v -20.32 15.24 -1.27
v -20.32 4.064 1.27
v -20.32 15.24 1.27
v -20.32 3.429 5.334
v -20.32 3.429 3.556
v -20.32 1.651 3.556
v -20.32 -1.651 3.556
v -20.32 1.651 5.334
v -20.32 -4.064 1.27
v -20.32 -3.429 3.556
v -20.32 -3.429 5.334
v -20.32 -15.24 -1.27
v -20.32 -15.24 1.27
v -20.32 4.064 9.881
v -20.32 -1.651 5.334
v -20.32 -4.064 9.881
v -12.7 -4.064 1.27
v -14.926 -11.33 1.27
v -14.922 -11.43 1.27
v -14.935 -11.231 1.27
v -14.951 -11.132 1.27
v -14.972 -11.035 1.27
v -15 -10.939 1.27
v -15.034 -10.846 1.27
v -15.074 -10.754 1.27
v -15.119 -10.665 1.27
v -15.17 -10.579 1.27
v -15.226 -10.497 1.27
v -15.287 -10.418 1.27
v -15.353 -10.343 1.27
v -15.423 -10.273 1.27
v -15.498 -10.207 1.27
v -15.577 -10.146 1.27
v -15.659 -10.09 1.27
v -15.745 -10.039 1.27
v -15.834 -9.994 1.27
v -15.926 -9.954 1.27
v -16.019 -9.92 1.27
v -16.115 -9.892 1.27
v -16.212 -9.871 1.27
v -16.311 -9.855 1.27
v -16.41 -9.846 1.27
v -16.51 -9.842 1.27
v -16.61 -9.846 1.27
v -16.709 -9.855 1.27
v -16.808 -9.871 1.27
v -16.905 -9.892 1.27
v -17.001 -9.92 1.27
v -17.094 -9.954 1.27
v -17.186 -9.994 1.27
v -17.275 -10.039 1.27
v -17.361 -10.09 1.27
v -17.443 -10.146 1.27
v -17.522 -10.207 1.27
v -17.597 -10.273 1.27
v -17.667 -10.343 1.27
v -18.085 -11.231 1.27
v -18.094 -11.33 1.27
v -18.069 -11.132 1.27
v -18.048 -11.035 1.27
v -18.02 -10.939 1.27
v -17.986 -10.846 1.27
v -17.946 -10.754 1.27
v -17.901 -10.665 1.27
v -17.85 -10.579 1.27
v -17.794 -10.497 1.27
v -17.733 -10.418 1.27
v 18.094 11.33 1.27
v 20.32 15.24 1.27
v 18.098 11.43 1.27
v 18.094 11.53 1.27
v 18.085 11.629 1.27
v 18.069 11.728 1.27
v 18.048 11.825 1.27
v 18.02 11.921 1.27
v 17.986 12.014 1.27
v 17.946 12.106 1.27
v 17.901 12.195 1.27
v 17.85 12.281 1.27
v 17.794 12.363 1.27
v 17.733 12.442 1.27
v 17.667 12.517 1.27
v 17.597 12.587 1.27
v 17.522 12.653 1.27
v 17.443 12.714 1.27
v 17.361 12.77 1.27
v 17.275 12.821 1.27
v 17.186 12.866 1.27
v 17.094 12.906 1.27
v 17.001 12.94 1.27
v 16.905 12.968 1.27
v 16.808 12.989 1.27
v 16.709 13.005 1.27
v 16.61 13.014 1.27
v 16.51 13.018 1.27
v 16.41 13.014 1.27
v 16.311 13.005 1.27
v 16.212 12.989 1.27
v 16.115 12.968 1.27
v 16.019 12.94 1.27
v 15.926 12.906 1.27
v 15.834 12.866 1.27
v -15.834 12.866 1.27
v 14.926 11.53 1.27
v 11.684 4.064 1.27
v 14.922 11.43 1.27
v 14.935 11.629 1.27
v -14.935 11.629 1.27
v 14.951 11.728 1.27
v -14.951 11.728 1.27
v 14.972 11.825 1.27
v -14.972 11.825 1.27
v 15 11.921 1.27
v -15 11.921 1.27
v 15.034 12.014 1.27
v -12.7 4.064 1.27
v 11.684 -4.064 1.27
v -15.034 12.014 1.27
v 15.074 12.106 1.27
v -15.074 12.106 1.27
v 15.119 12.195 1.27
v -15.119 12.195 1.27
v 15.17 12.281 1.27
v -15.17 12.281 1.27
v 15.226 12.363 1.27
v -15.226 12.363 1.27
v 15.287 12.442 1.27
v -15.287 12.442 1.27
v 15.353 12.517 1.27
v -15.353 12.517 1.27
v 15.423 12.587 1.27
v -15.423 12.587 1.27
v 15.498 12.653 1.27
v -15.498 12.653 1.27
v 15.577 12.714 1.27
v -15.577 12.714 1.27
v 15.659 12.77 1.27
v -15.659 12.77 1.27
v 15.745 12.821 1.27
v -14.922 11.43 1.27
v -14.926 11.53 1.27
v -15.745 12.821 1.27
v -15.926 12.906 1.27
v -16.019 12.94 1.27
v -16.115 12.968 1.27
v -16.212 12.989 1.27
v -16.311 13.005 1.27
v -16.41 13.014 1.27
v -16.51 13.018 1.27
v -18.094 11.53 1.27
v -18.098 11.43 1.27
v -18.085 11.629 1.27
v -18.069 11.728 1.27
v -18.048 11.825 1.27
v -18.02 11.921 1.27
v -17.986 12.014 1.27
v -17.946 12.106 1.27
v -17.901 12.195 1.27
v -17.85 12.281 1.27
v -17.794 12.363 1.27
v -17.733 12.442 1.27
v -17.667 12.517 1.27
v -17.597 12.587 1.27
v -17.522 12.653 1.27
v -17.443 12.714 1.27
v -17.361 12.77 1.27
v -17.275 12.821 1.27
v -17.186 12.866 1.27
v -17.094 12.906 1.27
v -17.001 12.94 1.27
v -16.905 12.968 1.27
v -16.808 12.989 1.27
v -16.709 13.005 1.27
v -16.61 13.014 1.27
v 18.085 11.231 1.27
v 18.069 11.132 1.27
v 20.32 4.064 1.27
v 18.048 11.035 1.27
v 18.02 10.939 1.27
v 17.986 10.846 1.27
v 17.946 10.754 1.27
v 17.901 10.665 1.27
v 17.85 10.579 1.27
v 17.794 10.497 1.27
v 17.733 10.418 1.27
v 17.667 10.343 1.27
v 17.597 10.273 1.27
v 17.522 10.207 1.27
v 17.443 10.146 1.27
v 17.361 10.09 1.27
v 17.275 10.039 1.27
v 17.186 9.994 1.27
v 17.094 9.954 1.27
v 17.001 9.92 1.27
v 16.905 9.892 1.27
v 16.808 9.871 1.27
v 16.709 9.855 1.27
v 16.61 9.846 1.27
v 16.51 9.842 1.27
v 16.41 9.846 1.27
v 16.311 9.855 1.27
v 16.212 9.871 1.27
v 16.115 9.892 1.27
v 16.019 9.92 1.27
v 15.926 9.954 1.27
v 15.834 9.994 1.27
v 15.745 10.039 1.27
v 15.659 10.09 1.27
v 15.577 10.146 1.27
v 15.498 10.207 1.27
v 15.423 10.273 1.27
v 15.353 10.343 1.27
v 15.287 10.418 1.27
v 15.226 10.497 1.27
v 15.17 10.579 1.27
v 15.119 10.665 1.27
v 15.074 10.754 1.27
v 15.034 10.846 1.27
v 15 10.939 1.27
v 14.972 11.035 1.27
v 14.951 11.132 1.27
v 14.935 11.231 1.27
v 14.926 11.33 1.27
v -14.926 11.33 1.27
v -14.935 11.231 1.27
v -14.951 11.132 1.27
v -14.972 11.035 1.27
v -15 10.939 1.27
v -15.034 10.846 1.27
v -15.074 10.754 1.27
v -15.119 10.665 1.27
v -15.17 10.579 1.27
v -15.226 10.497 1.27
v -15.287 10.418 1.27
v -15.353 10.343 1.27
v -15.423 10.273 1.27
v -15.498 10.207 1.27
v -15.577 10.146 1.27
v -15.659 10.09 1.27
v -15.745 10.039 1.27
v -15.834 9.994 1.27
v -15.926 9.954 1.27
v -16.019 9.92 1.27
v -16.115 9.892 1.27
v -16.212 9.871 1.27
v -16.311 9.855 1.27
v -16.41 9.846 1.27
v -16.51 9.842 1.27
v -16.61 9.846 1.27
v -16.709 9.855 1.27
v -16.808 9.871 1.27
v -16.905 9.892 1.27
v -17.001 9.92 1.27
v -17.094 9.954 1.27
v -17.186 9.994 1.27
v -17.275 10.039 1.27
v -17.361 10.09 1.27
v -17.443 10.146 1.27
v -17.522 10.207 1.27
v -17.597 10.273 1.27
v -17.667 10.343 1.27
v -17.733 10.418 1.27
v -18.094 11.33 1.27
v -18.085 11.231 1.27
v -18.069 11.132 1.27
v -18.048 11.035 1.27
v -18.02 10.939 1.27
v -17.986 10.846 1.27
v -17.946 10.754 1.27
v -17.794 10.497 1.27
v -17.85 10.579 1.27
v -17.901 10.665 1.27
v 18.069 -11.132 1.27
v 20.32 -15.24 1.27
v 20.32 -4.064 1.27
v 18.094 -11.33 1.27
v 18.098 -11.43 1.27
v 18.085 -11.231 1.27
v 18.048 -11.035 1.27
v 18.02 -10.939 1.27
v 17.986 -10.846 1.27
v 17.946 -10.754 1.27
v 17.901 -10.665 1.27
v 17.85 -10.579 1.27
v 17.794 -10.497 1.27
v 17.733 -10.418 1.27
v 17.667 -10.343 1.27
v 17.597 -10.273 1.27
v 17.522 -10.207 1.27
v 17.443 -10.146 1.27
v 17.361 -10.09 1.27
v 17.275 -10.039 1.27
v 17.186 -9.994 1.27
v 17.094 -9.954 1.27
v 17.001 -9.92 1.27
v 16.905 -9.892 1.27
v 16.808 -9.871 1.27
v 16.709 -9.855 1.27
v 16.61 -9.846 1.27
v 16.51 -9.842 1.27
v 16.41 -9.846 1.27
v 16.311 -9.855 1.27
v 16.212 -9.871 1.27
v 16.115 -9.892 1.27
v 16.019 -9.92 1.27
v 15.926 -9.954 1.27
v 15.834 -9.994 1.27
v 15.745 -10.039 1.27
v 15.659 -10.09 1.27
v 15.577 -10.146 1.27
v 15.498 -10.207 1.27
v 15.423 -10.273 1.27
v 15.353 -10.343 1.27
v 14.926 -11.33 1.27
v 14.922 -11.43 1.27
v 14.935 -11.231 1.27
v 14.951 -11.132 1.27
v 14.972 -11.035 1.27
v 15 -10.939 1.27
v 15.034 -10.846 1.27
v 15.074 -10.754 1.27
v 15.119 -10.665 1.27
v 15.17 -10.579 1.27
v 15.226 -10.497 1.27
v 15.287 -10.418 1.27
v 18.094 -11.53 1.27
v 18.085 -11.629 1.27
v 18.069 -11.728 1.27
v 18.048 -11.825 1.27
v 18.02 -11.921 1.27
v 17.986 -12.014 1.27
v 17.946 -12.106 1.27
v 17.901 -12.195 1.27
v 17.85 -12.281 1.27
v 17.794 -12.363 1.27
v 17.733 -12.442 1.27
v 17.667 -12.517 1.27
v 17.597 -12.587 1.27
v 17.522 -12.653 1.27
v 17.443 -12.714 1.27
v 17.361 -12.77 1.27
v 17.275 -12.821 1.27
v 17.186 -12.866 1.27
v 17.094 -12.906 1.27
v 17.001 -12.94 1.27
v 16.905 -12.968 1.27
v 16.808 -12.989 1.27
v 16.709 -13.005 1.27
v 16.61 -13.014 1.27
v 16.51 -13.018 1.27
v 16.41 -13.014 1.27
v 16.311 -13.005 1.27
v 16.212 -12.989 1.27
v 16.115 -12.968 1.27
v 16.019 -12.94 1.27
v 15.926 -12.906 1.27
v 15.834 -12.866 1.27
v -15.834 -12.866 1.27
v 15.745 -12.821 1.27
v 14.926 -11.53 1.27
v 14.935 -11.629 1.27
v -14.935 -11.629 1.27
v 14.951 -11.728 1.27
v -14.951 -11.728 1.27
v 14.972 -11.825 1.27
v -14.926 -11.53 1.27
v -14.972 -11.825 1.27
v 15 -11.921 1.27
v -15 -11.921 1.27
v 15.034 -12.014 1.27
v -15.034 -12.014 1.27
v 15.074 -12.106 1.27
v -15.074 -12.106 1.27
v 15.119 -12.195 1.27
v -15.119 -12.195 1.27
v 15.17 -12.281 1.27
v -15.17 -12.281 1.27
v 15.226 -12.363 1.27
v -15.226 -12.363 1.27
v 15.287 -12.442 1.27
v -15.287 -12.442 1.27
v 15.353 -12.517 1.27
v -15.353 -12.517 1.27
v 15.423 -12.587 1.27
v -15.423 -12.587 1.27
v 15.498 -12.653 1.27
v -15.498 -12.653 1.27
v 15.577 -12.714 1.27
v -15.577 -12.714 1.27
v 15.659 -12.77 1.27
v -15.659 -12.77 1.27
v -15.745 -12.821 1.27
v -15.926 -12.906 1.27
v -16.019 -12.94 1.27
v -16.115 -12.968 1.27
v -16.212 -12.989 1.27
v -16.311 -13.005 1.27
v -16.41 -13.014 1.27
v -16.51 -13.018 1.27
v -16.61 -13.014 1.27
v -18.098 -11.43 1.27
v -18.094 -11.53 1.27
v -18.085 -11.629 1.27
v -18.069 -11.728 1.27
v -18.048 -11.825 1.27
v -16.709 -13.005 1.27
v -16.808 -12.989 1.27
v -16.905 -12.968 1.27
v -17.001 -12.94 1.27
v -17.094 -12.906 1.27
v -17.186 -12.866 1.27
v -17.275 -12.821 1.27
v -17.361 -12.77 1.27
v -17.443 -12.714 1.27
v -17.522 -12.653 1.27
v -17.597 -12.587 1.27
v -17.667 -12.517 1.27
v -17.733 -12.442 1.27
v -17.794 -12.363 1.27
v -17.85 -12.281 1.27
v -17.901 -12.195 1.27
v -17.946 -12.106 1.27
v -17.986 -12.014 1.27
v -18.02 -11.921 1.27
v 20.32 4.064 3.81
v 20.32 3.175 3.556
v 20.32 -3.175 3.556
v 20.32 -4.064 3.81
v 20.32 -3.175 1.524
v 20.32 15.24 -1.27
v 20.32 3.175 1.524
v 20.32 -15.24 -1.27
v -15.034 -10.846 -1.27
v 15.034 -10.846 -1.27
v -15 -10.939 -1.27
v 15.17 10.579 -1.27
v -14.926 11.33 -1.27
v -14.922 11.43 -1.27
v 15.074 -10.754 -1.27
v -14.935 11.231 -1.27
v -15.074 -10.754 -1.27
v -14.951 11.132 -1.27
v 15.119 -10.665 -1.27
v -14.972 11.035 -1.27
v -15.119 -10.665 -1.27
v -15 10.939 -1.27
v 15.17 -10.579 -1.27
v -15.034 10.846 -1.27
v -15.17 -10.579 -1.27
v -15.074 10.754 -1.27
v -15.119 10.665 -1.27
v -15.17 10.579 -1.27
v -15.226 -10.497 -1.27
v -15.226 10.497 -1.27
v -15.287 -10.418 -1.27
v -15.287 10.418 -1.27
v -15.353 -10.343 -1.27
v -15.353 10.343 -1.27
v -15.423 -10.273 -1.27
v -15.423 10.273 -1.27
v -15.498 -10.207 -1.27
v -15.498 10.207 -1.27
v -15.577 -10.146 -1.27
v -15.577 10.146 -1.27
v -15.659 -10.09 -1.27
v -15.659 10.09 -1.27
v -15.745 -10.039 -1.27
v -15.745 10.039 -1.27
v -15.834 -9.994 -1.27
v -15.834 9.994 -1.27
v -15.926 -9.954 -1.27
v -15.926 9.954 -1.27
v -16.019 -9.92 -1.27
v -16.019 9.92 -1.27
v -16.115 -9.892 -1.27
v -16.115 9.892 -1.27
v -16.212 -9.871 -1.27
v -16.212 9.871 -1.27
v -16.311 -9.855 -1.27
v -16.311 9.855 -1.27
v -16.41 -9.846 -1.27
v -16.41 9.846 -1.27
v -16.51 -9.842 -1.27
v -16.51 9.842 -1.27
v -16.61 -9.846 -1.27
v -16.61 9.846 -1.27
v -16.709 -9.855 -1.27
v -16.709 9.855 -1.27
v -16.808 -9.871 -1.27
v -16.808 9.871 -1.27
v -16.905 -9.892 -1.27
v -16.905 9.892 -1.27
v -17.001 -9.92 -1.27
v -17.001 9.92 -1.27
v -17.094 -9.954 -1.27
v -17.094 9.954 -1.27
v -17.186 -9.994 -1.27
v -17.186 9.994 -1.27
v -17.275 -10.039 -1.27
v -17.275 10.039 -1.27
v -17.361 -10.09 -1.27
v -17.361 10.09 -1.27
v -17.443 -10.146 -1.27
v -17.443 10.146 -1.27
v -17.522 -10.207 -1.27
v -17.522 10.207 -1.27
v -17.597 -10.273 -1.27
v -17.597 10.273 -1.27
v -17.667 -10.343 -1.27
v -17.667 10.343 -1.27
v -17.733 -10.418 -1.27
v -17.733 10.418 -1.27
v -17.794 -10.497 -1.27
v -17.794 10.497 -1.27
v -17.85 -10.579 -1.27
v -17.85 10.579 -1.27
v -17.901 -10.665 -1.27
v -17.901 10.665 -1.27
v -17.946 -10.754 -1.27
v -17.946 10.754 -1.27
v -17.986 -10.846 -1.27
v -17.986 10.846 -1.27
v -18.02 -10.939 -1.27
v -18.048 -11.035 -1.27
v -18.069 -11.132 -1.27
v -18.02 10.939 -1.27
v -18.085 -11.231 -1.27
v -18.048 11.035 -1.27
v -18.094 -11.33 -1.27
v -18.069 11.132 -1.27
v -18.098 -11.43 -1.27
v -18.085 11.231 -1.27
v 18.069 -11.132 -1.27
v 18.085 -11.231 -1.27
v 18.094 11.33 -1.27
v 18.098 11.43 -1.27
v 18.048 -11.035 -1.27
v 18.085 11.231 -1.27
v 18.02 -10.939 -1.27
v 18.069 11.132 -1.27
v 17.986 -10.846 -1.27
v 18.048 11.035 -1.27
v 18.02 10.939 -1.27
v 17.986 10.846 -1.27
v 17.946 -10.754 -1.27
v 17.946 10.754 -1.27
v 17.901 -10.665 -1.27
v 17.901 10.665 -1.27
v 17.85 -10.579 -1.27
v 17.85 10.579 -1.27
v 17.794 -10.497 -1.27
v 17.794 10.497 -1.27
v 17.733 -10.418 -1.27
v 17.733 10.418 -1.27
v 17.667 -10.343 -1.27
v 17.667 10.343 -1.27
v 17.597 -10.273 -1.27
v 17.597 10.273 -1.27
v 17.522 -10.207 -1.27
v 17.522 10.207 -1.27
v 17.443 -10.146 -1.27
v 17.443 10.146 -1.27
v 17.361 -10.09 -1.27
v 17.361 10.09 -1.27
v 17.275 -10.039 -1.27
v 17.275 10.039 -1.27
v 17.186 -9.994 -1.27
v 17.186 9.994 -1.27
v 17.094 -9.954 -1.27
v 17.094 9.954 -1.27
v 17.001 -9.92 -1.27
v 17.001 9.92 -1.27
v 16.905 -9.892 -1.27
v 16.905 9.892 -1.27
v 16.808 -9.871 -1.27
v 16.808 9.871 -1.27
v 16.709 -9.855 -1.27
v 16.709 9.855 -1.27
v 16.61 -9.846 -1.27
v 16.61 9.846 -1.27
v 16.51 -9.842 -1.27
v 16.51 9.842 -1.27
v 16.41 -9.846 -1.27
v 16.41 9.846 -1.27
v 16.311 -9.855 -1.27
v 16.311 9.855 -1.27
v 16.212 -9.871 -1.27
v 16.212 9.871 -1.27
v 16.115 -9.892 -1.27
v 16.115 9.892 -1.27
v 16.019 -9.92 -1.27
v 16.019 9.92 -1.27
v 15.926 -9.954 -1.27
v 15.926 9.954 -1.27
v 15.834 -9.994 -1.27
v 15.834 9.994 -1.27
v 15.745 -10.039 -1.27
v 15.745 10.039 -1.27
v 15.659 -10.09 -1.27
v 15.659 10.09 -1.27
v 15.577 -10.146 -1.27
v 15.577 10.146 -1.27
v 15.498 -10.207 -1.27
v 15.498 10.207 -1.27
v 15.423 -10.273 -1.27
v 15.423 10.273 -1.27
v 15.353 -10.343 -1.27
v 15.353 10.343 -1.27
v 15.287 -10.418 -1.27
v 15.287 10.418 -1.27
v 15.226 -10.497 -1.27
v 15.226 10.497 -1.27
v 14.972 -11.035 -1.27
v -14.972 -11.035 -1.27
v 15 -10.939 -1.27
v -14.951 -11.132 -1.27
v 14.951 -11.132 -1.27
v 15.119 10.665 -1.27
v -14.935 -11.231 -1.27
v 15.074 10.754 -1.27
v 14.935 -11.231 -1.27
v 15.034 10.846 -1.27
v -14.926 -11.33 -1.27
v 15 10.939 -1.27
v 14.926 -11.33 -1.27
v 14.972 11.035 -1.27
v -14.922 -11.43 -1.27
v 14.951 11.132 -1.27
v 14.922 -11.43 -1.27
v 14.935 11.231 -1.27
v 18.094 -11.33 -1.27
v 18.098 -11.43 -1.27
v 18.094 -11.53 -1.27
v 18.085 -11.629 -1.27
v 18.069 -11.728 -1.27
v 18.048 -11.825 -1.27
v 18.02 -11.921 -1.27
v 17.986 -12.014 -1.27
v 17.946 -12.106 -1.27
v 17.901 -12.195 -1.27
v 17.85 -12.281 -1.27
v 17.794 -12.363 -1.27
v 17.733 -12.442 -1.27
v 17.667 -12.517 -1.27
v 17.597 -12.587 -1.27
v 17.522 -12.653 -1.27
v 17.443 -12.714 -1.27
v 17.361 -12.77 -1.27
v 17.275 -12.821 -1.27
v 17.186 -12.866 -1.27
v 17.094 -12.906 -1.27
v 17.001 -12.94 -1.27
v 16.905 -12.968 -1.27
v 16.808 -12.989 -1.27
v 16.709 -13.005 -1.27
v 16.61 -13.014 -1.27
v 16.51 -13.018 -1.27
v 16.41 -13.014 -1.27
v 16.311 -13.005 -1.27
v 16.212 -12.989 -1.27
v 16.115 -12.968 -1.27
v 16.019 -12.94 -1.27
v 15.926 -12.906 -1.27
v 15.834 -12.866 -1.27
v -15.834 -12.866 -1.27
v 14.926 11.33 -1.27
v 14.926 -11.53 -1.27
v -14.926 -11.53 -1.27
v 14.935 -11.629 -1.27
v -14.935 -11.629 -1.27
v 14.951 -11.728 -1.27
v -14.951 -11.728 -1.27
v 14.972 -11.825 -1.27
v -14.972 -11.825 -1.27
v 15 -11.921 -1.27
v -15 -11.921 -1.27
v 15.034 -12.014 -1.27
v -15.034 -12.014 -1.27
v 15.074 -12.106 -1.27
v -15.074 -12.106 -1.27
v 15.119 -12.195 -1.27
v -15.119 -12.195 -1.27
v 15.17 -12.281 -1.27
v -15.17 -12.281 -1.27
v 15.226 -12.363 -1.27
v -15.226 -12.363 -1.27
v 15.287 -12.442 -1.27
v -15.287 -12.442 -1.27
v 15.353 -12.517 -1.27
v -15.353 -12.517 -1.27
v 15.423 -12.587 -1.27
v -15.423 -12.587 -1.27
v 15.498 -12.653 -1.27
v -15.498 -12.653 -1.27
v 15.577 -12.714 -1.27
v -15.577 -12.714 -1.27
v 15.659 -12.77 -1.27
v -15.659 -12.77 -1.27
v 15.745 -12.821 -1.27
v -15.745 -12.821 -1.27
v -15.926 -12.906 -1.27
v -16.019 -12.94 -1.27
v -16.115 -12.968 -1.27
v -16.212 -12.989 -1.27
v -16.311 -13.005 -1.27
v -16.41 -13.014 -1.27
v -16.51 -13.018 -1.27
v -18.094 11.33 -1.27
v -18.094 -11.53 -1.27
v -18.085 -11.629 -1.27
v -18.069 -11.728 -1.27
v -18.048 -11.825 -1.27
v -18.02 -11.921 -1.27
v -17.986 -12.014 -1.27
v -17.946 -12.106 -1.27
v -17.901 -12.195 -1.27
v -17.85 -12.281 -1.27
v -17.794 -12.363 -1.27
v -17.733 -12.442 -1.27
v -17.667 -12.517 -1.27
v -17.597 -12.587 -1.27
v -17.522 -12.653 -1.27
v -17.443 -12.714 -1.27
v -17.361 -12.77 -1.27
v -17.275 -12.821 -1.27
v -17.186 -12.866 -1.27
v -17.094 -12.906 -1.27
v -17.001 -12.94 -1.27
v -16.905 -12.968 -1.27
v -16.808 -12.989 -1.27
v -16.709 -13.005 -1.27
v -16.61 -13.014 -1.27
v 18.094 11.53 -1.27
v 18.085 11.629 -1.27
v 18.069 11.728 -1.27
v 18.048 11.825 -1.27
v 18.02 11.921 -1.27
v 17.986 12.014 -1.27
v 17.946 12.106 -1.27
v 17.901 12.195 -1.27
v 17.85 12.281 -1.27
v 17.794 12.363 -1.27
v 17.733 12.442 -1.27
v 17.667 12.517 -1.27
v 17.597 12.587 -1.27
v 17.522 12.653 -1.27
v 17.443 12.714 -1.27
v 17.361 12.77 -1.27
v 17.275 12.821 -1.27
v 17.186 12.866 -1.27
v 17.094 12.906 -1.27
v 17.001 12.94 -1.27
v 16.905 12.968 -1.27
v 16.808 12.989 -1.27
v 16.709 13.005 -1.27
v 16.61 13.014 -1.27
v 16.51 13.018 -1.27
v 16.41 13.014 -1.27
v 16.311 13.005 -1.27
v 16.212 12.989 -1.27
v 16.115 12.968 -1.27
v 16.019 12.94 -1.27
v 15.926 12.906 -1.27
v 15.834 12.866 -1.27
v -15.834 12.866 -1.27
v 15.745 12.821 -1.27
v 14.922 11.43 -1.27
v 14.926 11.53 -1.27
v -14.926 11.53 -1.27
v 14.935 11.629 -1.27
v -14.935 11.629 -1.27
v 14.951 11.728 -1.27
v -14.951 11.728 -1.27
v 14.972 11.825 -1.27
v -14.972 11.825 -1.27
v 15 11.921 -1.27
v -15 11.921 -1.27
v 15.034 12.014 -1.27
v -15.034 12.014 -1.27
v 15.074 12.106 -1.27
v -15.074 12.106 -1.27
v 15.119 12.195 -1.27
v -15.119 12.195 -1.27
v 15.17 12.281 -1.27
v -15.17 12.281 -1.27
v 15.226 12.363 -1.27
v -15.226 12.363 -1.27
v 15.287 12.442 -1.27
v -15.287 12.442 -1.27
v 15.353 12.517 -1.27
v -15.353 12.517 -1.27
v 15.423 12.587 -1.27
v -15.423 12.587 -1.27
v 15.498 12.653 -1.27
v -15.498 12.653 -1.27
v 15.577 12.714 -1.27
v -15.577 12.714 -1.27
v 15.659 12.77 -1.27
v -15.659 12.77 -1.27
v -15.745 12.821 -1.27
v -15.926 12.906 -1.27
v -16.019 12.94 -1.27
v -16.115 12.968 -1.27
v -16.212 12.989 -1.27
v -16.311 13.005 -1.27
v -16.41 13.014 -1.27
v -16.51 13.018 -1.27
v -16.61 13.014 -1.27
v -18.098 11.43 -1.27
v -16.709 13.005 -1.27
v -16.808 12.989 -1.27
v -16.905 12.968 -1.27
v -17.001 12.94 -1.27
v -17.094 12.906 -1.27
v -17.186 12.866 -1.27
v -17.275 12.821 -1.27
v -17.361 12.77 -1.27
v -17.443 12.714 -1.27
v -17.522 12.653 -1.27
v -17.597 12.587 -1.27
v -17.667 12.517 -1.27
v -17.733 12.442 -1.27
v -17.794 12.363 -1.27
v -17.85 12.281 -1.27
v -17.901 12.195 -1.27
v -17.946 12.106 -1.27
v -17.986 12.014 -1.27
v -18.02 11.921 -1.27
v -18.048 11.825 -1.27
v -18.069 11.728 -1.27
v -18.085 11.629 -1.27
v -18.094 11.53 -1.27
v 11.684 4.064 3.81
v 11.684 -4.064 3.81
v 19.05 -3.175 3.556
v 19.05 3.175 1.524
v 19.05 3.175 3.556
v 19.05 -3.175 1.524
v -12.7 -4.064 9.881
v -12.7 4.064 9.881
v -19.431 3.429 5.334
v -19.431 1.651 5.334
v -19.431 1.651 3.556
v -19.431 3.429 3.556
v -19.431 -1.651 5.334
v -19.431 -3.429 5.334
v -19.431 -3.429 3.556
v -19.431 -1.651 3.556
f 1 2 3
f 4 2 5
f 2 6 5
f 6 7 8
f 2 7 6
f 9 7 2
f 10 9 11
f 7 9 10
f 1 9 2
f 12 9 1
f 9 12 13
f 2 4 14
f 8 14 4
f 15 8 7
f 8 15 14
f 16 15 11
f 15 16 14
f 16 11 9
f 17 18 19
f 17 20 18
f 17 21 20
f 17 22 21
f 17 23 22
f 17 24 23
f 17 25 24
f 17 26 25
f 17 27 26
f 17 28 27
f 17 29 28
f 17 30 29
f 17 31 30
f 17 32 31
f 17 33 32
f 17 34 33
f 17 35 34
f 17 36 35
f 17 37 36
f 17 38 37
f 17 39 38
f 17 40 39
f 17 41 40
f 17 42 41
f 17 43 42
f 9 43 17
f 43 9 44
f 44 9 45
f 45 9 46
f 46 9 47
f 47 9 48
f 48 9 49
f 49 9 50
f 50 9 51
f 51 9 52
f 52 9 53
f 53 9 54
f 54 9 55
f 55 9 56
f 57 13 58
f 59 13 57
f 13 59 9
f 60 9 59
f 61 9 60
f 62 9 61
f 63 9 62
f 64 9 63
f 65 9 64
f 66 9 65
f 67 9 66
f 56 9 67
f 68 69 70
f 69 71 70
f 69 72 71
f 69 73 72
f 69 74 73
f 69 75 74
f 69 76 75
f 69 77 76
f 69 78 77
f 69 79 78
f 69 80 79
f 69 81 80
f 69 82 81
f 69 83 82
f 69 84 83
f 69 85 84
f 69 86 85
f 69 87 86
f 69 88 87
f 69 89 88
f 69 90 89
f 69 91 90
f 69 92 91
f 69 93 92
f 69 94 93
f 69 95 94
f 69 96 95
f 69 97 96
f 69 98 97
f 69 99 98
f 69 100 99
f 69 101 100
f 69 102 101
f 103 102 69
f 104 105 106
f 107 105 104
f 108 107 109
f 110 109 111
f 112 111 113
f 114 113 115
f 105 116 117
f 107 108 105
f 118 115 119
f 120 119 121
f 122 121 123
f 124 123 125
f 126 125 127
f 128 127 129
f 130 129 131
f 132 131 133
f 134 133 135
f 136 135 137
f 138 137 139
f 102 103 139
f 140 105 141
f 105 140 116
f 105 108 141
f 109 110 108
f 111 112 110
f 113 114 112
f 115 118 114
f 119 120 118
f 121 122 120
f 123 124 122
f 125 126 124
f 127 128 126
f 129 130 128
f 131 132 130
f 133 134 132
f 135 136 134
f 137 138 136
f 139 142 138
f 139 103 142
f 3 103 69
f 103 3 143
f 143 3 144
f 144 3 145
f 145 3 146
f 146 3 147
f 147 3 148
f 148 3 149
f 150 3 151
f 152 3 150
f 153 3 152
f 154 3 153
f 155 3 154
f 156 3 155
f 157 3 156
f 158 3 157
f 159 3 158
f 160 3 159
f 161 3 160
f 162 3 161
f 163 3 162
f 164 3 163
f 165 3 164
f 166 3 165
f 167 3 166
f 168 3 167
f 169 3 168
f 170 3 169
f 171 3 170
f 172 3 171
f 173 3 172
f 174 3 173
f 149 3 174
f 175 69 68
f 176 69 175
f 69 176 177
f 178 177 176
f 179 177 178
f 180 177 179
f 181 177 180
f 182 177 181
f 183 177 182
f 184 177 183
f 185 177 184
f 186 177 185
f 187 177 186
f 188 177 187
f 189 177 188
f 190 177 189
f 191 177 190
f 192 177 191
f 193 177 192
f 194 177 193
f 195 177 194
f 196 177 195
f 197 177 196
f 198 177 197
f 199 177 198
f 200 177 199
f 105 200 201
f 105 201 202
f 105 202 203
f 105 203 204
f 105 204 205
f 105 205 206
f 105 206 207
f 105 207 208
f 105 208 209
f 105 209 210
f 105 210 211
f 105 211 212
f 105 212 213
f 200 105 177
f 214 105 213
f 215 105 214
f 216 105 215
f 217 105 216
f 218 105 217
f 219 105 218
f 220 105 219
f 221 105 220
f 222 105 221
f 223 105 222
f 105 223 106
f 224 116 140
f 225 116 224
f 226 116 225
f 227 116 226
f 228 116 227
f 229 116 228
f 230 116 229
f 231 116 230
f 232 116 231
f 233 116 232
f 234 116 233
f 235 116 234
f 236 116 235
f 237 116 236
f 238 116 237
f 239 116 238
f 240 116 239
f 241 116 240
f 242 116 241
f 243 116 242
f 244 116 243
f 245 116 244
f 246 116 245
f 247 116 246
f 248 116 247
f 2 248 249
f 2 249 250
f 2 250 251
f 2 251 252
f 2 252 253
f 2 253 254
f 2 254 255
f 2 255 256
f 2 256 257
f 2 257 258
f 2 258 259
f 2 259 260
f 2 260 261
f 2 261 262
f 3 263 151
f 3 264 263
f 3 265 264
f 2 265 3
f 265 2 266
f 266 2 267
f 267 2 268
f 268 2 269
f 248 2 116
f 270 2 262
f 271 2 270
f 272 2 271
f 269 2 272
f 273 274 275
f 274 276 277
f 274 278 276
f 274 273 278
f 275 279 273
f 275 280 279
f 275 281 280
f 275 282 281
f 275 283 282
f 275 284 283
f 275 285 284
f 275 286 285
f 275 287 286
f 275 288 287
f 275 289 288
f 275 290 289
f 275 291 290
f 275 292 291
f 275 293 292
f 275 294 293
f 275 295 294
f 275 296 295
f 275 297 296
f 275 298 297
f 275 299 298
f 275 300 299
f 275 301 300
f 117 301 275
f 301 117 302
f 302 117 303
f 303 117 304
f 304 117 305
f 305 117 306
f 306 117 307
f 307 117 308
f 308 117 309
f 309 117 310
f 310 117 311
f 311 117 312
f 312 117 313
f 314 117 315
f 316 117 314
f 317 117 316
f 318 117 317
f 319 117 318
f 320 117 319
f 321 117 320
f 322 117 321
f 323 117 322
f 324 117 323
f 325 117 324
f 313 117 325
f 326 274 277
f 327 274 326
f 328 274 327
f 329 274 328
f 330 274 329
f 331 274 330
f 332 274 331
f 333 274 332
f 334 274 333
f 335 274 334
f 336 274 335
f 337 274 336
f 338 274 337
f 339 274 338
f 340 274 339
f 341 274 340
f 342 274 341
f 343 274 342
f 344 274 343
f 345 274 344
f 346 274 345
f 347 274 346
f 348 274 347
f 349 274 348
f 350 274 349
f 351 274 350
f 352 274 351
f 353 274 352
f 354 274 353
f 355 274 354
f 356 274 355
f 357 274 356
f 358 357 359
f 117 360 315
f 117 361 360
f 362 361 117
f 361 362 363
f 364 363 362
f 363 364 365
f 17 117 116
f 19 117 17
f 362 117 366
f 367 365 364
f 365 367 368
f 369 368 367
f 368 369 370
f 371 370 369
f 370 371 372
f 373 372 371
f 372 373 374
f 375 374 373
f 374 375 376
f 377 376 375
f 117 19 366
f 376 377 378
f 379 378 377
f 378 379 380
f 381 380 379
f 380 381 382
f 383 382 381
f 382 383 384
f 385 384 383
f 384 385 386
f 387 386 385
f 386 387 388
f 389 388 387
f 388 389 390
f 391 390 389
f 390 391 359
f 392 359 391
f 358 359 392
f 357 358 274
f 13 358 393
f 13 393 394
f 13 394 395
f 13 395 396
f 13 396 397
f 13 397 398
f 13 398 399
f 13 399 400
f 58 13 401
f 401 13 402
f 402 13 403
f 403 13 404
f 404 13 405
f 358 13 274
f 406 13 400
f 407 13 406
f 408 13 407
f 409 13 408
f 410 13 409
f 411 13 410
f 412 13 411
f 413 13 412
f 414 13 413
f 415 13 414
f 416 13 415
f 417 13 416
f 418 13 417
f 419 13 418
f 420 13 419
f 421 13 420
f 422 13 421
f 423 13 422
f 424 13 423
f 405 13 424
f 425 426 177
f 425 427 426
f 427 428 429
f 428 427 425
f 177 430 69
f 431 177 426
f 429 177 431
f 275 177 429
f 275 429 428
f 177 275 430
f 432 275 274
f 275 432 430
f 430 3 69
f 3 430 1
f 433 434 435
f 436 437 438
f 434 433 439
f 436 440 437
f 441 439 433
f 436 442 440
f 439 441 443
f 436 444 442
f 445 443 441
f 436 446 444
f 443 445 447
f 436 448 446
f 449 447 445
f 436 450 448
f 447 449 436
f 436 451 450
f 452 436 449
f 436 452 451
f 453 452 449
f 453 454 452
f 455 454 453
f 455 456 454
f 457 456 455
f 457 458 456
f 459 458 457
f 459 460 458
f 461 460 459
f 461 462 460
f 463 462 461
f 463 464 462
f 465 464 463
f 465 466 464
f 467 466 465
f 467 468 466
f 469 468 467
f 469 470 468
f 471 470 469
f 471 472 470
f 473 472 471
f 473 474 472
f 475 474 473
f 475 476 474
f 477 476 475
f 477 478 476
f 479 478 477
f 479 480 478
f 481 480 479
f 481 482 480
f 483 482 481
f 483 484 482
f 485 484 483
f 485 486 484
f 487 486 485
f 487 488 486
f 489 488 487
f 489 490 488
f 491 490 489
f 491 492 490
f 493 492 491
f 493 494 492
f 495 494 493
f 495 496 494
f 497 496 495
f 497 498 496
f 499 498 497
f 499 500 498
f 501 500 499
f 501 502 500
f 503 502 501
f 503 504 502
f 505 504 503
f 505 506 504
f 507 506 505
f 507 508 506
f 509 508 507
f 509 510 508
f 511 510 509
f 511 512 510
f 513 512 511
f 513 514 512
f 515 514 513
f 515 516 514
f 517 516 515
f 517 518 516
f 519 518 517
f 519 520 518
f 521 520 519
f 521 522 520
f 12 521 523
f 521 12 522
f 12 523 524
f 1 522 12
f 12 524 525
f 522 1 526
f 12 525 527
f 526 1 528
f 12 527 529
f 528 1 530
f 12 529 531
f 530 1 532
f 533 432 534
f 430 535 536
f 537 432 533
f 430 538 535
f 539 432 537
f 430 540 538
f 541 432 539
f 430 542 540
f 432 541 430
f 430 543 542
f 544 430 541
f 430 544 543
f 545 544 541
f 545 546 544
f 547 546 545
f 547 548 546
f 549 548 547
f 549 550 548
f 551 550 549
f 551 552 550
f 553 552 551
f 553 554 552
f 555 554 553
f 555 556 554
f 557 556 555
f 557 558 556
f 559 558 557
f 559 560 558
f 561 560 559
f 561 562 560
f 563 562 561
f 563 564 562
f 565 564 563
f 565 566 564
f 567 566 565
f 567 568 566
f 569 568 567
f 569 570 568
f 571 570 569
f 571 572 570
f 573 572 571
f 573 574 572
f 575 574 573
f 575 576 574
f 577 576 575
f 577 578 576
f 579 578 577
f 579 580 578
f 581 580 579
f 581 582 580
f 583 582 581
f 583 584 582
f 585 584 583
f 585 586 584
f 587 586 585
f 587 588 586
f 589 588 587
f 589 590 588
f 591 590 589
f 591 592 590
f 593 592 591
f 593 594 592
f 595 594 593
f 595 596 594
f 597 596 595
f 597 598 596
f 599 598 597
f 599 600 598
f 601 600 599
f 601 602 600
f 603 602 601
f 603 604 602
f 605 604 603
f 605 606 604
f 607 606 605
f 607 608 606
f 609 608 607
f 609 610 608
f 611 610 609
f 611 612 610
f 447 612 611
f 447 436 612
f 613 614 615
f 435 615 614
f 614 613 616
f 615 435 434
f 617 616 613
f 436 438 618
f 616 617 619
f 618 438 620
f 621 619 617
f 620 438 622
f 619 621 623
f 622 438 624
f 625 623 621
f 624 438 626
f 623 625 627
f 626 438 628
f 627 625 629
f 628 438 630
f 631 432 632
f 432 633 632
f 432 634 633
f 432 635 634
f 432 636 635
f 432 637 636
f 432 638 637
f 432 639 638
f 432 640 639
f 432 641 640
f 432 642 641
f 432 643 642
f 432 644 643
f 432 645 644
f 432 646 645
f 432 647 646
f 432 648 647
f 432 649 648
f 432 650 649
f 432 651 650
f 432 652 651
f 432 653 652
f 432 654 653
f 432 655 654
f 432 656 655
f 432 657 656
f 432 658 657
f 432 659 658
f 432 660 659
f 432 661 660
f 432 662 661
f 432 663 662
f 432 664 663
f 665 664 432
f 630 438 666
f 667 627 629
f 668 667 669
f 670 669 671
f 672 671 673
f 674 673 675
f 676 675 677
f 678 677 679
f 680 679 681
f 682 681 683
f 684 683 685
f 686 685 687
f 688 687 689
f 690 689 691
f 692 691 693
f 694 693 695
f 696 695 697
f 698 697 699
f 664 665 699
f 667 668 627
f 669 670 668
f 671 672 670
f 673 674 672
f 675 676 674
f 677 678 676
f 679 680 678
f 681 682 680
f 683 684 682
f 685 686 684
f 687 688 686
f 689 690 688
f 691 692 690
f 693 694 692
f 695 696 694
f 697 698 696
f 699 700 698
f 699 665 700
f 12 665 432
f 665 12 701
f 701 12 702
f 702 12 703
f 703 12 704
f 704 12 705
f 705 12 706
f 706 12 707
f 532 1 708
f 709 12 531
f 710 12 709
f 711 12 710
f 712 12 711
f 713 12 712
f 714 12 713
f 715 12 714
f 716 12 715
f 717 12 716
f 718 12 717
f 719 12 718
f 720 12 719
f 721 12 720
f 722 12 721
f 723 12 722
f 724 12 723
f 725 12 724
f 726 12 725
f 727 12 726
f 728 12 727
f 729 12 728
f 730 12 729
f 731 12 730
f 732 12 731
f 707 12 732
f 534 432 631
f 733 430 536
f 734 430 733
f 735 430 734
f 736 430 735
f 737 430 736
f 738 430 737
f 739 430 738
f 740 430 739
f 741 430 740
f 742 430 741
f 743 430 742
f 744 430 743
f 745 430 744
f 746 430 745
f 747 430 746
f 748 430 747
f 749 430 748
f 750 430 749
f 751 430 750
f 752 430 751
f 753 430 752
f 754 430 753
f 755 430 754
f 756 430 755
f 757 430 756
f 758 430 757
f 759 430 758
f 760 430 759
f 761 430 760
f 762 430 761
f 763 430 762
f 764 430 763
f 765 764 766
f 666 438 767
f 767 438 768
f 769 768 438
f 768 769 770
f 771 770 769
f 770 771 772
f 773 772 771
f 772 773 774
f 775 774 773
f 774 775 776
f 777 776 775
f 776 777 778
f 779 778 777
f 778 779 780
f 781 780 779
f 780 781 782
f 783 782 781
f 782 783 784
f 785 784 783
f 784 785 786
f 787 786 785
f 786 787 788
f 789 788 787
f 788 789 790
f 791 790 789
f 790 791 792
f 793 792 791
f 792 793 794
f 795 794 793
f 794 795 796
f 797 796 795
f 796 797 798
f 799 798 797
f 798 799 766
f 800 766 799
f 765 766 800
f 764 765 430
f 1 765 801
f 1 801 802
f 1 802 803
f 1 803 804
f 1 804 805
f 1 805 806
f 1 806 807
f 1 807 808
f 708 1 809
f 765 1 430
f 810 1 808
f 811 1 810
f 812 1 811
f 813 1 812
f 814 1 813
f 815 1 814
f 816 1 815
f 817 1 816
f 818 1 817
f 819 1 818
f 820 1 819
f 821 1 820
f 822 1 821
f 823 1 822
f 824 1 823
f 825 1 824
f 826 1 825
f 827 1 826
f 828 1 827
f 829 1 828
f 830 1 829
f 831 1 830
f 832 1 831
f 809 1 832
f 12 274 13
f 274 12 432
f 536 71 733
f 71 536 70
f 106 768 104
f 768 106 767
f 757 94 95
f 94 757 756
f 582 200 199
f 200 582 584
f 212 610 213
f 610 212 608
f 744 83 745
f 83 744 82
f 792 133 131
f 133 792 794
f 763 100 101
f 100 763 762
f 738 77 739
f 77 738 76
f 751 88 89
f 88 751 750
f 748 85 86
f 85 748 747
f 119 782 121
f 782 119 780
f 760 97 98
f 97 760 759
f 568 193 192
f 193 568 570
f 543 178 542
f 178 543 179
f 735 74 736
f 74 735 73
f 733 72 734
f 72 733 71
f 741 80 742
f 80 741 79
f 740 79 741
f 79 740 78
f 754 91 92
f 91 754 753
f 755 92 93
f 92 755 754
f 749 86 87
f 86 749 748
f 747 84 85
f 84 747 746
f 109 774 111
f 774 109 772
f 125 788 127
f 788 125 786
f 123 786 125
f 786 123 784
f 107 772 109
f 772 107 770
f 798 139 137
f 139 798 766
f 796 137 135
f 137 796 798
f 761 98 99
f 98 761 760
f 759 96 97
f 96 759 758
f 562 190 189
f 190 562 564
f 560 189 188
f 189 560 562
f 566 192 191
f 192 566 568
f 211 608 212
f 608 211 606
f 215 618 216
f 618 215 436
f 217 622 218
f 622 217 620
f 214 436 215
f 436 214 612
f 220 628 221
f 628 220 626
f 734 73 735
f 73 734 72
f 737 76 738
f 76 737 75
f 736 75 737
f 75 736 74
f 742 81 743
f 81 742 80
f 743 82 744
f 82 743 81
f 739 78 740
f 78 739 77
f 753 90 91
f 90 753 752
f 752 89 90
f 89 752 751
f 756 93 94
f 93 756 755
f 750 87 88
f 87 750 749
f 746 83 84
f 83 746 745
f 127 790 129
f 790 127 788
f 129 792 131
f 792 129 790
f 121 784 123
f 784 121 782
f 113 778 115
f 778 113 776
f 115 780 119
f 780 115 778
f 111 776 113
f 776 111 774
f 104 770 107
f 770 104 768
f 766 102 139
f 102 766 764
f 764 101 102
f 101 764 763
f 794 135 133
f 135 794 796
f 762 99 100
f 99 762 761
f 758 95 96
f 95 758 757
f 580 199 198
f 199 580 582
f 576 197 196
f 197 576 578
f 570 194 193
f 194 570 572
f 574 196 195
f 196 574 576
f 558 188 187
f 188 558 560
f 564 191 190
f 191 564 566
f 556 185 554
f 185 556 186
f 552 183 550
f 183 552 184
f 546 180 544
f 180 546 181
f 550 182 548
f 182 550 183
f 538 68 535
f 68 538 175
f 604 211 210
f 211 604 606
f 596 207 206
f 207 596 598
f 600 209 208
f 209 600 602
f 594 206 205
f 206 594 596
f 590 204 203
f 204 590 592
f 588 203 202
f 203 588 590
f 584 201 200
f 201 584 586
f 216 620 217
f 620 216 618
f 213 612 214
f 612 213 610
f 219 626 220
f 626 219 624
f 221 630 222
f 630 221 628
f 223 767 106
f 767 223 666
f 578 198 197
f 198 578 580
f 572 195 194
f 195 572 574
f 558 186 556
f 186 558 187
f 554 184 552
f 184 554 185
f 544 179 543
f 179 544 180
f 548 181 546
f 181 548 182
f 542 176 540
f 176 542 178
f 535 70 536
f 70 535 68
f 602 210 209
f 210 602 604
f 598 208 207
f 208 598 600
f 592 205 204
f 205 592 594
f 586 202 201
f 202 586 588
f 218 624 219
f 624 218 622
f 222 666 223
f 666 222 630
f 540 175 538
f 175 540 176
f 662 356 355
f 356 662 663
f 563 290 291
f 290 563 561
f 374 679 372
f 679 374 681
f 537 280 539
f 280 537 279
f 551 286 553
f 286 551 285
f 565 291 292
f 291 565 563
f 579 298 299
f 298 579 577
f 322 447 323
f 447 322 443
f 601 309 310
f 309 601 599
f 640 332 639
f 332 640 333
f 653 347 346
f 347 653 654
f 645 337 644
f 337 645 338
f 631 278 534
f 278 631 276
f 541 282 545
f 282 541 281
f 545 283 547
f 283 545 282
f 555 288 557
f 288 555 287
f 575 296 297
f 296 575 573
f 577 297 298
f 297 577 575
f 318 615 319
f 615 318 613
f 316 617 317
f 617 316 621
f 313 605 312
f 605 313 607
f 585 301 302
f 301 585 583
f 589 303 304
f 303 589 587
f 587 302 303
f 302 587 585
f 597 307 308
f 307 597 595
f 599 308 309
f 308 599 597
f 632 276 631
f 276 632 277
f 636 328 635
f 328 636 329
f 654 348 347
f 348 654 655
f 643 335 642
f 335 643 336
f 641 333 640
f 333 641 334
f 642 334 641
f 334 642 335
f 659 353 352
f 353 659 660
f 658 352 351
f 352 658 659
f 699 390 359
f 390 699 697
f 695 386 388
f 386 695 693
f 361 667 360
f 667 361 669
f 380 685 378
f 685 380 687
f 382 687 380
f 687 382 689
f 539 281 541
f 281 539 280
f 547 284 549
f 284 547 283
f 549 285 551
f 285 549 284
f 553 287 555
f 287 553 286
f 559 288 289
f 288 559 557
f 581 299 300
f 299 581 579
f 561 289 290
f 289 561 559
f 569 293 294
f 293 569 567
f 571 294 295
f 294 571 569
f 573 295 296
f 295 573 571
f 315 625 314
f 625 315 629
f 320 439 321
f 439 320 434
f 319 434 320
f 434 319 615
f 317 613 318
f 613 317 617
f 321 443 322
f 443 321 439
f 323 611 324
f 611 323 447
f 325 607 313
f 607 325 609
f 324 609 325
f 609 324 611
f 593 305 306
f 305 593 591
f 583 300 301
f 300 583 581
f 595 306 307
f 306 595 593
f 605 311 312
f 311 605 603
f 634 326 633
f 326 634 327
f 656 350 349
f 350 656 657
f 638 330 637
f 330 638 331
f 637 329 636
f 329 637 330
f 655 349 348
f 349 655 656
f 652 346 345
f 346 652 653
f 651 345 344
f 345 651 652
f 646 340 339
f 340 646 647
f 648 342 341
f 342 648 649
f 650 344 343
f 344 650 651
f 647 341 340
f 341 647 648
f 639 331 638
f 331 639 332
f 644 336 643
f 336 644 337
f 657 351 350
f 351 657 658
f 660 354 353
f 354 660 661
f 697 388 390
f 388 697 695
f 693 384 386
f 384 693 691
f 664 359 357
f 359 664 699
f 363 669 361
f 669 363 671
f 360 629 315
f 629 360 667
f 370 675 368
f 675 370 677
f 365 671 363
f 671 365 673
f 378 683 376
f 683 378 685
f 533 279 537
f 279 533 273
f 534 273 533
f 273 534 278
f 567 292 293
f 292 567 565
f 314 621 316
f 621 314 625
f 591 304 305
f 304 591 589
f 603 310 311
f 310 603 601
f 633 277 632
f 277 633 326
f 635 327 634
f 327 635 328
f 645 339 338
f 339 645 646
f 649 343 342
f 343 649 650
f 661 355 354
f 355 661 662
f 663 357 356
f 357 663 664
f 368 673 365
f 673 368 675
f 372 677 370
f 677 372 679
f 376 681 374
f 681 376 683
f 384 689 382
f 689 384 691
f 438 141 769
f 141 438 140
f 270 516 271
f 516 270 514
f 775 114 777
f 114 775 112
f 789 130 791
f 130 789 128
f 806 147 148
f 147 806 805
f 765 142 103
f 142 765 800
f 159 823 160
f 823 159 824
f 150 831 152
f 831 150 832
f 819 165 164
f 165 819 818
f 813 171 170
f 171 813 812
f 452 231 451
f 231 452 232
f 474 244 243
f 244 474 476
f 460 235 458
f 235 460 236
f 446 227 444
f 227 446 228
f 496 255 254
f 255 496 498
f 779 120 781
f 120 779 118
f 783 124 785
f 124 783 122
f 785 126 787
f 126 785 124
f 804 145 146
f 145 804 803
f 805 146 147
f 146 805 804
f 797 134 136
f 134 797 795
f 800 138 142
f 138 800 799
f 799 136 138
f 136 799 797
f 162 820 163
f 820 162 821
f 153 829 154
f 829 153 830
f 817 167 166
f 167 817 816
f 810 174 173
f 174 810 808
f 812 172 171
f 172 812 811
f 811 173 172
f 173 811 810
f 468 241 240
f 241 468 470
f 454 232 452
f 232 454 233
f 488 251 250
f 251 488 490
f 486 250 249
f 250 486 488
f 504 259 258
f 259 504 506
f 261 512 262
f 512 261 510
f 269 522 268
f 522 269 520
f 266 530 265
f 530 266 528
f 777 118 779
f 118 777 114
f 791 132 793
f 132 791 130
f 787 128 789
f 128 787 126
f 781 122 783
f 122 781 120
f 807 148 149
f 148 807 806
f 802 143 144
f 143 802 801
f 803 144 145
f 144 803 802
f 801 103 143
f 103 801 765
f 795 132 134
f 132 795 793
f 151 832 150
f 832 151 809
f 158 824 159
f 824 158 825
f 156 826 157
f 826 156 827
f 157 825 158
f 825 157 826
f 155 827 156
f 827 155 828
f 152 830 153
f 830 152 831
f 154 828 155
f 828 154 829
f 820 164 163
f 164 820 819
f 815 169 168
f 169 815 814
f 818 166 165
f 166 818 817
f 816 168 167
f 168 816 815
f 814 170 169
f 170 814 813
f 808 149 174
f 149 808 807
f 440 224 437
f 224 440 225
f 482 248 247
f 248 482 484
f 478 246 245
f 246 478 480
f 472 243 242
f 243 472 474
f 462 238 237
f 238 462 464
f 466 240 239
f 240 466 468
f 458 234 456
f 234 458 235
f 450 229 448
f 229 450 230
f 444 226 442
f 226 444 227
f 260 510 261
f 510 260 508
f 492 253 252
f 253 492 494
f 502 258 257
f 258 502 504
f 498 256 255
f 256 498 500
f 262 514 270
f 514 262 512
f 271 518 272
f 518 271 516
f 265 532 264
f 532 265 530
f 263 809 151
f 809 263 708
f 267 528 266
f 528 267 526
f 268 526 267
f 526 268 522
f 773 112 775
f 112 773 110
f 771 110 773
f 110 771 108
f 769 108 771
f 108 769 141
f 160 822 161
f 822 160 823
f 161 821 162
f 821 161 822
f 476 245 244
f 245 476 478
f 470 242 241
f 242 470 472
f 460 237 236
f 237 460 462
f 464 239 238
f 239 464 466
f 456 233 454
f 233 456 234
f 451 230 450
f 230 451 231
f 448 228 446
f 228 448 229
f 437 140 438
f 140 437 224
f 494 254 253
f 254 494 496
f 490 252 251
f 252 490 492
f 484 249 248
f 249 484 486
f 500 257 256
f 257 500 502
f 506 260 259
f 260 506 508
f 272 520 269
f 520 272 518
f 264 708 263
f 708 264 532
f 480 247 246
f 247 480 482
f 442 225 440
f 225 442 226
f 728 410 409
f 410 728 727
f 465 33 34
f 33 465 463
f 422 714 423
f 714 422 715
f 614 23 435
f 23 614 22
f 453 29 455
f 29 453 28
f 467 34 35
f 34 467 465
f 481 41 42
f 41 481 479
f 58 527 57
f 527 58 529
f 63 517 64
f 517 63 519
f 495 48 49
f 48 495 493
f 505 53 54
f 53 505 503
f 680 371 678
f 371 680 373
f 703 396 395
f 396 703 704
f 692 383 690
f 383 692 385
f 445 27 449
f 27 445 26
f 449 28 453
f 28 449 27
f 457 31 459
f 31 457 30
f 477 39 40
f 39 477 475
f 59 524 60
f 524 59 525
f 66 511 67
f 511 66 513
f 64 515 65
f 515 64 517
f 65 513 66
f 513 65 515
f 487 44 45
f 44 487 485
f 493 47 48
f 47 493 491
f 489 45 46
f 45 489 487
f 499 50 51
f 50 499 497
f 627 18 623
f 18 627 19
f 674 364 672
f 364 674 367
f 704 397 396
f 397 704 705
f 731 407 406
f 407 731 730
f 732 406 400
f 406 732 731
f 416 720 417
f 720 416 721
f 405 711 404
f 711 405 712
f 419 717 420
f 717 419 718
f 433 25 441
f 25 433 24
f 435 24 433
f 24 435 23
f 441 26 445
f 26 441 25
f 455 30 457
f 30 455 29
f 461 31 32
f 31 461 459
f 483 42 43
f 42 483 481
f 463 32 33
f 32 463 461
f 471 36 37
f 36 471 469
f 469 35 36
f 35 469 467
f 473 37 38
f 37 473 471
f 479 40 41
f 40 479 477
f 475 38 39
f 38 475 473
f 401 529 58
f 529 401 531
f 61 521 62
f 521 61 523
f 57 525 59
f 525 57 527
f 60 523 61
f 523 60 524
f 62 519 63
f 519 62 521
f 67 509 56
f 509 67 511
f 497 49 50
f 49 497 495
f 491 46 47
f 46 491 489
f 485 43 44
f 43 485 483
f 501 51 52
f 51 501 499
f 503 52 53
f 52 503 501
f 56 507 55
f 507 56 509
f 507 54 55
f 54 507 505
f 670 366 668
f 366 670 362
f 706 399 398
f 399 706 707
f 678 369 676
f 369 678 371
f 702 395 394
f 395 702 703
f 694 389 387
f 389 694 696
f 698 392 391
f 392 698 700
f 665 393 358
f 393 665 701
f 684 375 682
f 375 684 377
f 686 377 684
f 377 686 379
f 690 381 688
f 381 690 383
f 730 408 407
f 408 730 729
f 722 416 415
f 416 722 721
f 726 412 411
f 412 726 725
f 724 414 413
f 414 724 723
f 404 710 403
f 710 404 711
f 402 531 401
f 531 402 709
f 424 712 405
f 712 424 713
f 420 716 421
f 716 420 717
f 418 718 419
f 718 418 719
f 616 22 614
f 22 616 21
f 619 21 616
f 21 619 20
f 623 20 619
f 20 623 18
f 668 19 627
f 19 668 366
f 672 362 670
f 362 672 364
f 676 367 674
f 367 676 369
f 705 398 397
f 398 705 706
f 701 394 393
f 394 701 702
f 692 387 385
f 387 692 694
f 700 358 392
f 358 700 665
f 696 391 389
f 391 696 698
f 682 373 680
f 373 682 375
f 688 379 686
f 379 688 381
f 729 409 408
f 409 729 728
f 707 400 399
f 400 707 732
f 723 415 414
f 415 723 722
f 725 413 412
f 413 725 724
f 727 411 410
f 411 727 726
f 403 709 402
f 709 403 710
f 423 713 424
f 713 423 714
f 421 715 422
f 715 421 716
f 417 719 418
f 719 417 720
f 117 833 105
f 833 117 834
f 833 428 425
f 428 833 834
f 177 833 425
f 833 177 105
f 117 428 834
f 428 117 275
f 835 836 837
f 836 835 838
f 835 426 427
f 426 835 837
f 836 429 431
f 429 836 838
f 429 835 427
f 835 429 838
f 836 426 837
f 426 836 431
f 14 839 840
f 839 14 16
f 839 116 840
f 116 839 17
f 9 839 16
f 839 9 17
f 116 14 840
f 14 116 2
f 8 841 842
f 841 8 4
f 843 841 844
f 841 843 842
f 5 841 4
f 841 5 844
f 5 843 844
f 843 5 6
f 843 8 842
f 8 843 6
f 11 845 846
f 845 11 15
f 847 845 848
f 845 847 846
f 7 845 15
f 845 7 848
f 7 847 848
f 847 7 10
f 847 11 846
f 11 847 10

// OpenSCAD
// file: dim1.scad
//L'objet de ce fichier est de consigner les dimensions et les contraintes communes aux trois pieces de la e-poignee.
//Ces trois pieces sont fabriquees sur imprimante 3D, elles sont completees d'un Circuit Imprime (CI) et d'un isolateur.
//Le montage de l'ensemble est realise à l'aide d'un jeu de visserie compose
//de vis, de rondelles, d'un ecrou autobloquant et d'entretoises filetees.
//Les noms attribues a ces trois pieces sont la jupe, le top et le logo.
//Les dimensions relatives au CI sont exprimees en pouces et converties en mm à l'aide d'un Coefficient de Conversion (CC).
CC=25.4;//Coefficient de Conversion (pouce -> mm)
L1=1.6*CC;//longueur du CI
L2=1.3*CC;//entre axes des trous de fixation du CI
l1=1.2*CC;//largeur du CI
l2=0.9*CC;//entre axes des trous de fixation du CI
r=(0.125*CC)/2;//rayon de percage des trous de fixation du CI
e=0.1*CC;//epaisseur des parois
R=37.15;//Rayon du cercle de revolution du tore
//La premiere contrainte commune au logo et au top est la visibilite de l'embase USB.
//Cette visibilite est necessaire quand l'utilisateur etablit la connection du cable sur l'embase USB.
//La seconde contrainte est thermique, la temperature du couvercle peut atteindre des valeurs aux environ des 90°C.
//L'experience a montree que la matiere (PLA ou ABS) ramolie a ces temperatures.
//Cette contrainte est prise en compte par l'insertion de l'isolateur, elle concerne egalement la perimetre inferieur de la jupe.
// main file
$fn=100;
include <dim1.scad>
difference(){
cube(size = [L1,l1,e], center = true);
translate([L2/2,l2/2,0])cylinder(h = 2*e, r = r, center = true);
translate([L2/2,-l2/2,0])cylinder(h = 2*e, r = r, center = true);
translate([-L2/2,l2/2,0])cylinder(h = 2*e, r = r, center = true);
translate([-L2/2,-l2/2,0])cylinder(h = 2*e, r = r, center = true);
}
difference(){
translate([(L1/2)-(0.34*25.4)/2,0,(e+(0.1*25.4))/2])cube(size = [0.34*25.4,0.32*25.4,0.1*25.4], center = true);
translate([L1/2,0,(e+(0.1*25.4))/2])cube(size = [0.1*25.4,0.25*25.4,0.08*25.4], center = true);
}
difference(){
translate([-(L1/2)+(0.3*25.4)/2,0,(e+(0.339*25.4))/2])cube(size = [0.3*25.4,0.32*25.4,0.339*25.4], center = true);
translate([-(L1/2),e,(e+(0.25*25.4))/2])cube(size = [0.07*25.4,0.07*25.4,0.07*25.4], center = true);
translate([-(L1/2),-e,(e+(0.25*25.4))/2])cube(size = [0.07*25.4,0.07*25.4,0.07*25.4], center = true);
}
